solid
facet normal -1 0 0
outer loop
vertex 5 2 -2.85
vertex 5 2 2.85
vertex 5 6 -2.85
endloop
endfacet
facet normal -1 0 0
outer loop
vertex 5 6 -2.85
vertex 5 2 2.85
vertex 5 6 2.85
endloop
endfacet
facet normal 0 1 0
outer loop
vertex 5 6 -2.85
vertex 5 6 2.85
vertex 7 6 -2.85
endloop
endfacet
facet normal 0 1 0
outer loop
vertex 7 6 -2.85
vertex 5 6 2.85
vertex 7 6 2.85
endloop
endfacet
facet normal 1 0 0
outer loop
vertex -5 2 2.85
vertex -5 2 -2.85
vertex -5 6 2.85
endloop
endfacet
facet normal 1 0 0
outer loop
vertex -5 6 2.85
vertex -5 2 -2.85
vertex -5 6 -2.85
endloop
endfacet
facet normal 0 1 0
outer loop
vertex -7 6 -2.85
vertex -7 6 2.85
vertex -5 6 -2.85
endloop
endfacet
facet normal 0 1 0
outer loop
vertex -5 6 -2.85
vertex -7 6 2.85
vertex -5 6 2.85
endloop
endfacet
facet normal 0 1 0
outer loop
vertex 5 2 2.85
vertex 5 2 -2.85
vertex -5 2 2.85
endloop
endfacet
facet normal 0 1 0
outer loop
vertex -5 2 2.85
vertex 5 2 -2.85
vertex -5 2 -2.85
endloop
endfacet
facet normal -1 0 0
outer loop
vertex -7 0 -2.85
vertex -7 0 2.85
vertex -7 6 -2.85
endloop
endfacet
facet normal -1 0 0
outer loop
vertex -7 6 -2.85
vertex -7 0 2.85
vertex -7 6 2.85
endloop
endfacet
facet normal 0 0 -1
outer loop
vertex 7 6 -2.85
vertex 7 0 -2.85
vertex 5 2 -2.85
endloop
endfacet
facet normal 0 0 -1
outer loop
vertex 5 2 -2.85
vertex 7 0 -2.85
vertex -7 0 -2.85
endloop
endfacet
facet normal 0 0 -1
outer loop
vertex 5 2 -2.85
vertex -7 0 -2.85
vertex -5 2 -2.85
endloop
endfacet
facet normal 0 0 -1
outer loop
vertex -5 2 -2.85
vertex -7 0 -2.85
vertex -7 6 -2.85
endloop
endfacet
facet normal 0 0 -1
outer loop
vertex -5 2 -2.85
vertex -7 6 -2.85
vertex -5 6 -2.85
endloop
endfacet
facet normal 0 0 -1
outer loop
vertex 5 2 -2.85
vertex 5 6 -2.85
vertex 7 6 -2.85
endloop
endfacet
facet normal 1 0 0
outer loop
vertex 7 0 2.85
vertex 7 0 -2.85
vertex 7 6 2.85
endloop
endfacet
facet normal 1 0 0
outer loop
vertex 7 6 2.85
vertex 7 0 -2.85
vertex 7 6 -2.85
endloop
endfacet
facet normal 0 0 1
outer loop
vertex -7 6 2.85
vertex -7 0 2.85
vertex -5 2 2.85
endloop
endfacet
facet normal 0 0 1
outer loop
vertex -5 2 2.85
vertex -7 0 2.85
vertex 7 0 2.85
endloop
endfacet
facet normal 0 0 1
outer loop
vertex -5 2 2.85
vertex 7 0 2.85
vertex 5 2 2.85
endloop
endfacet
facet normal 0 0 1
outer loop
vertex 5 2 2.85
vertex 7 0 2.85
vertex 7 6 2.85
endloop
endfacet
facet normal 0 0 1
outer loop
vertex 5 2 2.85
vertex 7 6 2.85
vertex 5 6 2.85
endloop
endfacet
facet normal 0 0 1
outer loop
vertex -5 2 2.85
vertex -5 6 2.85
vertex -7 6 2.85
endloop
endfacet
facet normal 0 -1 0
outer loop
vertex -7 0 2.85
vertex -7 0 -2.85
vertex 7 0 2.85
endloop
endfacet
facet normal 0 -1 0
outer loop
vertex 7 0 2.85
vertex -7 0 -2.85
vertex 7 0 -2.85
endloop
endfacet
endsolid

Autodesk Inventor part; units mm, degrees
ref_plane "YZ Plane" through (0, 0, 0) normal (1, 0, 0) x (0, 1, 0)
ref_plane "XZ Plane" through (0, 0, 0) normal (0, 1, 0) x (-1, 0, 0)
ref_plane "XY Plane" through (0, 0, 0) normal (0, 0, 1) x (1, 0, 0)
sketch "Sketch1" plane through (0, 0, 0) normal (0, 1, 0) x (-1, 0, 0)
  line L0 (7, -2.85) -> (-7, -2.85)
  line L1 (-7, -2.85) -> (-7, 2.85)
  line L2 (-7, 2.85) -> (7, 2.85)
  line L3 (7, 2.85) -> (7, -2.85)
  line L4 (7, -2.85) -> (-7, 2.85) construction
  line L5 (-7, -2.85) -> (7, 2.85) construction
  point P0 (0, 0)
  dimension "d0" = 14
  dimension "d1" = 5.7
extrude "Extrusion1" add sketch "Sketch1" along normal blind 2
sketch "Sketch2" plane through (0, 2, 0) normal (0, 1, 0) x (1, 0, 0)
  line L0 (7, 2.85) -> (-7, 2.85) projected
  line L1 (-7, -2.85) -> (7, -2.85) projected
  line L2 (-7, 2.85) -> (-5, 2.85)
  line L3 (-5, 2.85) -> (-5, -2.85)
  line L4 (-5, -2.85) -> (-7, -2.85)
  line L5 (-7, -2.85) -> (-7, 2.85)
  line L6 (-9.8, 0) -> (9.8, 0) projected
  line L7 (0, 3.99) -> (0, -3.99) projected
  line L8 (7, 2.85) -> (5, 2.85)
  line L9 (5, 2.85) -> (5, -2.85)
  line L10 (5, -2.85) -> (7, -2.85)
  line L11 (7, -2.85) -> (7, 2.85)
  point P0 (0, 0)
  dimension "d4" = 2
extrude "Extrusion2" add sketch "Sketch2" along normal blind 4 contours L11 L6 L9 L0 | L11 L1 L9 L6 | L3 L6 L5 L0 | L3 L1 L5 L6
equation "\"BendRadius\" = Thickness"
equation "\"BendReliefWidth\" = Thickness"
equation "\"BendReliefDepth\" = 0.5 * Thickness"
equation "\"CornerReliefSize\" = 4 * Thickness"
equation "\"MinimumRemnant\" = 2 * Thickness"
equation "\"TransitionRadius\" = BendRadius"
equation "\"JacobiRadiusSize\" = BendRadius"
equation "\"GapSize\" = Thickness"
equation "\"Thickness\" = 3.048"
properties part number "_3DPrint"
